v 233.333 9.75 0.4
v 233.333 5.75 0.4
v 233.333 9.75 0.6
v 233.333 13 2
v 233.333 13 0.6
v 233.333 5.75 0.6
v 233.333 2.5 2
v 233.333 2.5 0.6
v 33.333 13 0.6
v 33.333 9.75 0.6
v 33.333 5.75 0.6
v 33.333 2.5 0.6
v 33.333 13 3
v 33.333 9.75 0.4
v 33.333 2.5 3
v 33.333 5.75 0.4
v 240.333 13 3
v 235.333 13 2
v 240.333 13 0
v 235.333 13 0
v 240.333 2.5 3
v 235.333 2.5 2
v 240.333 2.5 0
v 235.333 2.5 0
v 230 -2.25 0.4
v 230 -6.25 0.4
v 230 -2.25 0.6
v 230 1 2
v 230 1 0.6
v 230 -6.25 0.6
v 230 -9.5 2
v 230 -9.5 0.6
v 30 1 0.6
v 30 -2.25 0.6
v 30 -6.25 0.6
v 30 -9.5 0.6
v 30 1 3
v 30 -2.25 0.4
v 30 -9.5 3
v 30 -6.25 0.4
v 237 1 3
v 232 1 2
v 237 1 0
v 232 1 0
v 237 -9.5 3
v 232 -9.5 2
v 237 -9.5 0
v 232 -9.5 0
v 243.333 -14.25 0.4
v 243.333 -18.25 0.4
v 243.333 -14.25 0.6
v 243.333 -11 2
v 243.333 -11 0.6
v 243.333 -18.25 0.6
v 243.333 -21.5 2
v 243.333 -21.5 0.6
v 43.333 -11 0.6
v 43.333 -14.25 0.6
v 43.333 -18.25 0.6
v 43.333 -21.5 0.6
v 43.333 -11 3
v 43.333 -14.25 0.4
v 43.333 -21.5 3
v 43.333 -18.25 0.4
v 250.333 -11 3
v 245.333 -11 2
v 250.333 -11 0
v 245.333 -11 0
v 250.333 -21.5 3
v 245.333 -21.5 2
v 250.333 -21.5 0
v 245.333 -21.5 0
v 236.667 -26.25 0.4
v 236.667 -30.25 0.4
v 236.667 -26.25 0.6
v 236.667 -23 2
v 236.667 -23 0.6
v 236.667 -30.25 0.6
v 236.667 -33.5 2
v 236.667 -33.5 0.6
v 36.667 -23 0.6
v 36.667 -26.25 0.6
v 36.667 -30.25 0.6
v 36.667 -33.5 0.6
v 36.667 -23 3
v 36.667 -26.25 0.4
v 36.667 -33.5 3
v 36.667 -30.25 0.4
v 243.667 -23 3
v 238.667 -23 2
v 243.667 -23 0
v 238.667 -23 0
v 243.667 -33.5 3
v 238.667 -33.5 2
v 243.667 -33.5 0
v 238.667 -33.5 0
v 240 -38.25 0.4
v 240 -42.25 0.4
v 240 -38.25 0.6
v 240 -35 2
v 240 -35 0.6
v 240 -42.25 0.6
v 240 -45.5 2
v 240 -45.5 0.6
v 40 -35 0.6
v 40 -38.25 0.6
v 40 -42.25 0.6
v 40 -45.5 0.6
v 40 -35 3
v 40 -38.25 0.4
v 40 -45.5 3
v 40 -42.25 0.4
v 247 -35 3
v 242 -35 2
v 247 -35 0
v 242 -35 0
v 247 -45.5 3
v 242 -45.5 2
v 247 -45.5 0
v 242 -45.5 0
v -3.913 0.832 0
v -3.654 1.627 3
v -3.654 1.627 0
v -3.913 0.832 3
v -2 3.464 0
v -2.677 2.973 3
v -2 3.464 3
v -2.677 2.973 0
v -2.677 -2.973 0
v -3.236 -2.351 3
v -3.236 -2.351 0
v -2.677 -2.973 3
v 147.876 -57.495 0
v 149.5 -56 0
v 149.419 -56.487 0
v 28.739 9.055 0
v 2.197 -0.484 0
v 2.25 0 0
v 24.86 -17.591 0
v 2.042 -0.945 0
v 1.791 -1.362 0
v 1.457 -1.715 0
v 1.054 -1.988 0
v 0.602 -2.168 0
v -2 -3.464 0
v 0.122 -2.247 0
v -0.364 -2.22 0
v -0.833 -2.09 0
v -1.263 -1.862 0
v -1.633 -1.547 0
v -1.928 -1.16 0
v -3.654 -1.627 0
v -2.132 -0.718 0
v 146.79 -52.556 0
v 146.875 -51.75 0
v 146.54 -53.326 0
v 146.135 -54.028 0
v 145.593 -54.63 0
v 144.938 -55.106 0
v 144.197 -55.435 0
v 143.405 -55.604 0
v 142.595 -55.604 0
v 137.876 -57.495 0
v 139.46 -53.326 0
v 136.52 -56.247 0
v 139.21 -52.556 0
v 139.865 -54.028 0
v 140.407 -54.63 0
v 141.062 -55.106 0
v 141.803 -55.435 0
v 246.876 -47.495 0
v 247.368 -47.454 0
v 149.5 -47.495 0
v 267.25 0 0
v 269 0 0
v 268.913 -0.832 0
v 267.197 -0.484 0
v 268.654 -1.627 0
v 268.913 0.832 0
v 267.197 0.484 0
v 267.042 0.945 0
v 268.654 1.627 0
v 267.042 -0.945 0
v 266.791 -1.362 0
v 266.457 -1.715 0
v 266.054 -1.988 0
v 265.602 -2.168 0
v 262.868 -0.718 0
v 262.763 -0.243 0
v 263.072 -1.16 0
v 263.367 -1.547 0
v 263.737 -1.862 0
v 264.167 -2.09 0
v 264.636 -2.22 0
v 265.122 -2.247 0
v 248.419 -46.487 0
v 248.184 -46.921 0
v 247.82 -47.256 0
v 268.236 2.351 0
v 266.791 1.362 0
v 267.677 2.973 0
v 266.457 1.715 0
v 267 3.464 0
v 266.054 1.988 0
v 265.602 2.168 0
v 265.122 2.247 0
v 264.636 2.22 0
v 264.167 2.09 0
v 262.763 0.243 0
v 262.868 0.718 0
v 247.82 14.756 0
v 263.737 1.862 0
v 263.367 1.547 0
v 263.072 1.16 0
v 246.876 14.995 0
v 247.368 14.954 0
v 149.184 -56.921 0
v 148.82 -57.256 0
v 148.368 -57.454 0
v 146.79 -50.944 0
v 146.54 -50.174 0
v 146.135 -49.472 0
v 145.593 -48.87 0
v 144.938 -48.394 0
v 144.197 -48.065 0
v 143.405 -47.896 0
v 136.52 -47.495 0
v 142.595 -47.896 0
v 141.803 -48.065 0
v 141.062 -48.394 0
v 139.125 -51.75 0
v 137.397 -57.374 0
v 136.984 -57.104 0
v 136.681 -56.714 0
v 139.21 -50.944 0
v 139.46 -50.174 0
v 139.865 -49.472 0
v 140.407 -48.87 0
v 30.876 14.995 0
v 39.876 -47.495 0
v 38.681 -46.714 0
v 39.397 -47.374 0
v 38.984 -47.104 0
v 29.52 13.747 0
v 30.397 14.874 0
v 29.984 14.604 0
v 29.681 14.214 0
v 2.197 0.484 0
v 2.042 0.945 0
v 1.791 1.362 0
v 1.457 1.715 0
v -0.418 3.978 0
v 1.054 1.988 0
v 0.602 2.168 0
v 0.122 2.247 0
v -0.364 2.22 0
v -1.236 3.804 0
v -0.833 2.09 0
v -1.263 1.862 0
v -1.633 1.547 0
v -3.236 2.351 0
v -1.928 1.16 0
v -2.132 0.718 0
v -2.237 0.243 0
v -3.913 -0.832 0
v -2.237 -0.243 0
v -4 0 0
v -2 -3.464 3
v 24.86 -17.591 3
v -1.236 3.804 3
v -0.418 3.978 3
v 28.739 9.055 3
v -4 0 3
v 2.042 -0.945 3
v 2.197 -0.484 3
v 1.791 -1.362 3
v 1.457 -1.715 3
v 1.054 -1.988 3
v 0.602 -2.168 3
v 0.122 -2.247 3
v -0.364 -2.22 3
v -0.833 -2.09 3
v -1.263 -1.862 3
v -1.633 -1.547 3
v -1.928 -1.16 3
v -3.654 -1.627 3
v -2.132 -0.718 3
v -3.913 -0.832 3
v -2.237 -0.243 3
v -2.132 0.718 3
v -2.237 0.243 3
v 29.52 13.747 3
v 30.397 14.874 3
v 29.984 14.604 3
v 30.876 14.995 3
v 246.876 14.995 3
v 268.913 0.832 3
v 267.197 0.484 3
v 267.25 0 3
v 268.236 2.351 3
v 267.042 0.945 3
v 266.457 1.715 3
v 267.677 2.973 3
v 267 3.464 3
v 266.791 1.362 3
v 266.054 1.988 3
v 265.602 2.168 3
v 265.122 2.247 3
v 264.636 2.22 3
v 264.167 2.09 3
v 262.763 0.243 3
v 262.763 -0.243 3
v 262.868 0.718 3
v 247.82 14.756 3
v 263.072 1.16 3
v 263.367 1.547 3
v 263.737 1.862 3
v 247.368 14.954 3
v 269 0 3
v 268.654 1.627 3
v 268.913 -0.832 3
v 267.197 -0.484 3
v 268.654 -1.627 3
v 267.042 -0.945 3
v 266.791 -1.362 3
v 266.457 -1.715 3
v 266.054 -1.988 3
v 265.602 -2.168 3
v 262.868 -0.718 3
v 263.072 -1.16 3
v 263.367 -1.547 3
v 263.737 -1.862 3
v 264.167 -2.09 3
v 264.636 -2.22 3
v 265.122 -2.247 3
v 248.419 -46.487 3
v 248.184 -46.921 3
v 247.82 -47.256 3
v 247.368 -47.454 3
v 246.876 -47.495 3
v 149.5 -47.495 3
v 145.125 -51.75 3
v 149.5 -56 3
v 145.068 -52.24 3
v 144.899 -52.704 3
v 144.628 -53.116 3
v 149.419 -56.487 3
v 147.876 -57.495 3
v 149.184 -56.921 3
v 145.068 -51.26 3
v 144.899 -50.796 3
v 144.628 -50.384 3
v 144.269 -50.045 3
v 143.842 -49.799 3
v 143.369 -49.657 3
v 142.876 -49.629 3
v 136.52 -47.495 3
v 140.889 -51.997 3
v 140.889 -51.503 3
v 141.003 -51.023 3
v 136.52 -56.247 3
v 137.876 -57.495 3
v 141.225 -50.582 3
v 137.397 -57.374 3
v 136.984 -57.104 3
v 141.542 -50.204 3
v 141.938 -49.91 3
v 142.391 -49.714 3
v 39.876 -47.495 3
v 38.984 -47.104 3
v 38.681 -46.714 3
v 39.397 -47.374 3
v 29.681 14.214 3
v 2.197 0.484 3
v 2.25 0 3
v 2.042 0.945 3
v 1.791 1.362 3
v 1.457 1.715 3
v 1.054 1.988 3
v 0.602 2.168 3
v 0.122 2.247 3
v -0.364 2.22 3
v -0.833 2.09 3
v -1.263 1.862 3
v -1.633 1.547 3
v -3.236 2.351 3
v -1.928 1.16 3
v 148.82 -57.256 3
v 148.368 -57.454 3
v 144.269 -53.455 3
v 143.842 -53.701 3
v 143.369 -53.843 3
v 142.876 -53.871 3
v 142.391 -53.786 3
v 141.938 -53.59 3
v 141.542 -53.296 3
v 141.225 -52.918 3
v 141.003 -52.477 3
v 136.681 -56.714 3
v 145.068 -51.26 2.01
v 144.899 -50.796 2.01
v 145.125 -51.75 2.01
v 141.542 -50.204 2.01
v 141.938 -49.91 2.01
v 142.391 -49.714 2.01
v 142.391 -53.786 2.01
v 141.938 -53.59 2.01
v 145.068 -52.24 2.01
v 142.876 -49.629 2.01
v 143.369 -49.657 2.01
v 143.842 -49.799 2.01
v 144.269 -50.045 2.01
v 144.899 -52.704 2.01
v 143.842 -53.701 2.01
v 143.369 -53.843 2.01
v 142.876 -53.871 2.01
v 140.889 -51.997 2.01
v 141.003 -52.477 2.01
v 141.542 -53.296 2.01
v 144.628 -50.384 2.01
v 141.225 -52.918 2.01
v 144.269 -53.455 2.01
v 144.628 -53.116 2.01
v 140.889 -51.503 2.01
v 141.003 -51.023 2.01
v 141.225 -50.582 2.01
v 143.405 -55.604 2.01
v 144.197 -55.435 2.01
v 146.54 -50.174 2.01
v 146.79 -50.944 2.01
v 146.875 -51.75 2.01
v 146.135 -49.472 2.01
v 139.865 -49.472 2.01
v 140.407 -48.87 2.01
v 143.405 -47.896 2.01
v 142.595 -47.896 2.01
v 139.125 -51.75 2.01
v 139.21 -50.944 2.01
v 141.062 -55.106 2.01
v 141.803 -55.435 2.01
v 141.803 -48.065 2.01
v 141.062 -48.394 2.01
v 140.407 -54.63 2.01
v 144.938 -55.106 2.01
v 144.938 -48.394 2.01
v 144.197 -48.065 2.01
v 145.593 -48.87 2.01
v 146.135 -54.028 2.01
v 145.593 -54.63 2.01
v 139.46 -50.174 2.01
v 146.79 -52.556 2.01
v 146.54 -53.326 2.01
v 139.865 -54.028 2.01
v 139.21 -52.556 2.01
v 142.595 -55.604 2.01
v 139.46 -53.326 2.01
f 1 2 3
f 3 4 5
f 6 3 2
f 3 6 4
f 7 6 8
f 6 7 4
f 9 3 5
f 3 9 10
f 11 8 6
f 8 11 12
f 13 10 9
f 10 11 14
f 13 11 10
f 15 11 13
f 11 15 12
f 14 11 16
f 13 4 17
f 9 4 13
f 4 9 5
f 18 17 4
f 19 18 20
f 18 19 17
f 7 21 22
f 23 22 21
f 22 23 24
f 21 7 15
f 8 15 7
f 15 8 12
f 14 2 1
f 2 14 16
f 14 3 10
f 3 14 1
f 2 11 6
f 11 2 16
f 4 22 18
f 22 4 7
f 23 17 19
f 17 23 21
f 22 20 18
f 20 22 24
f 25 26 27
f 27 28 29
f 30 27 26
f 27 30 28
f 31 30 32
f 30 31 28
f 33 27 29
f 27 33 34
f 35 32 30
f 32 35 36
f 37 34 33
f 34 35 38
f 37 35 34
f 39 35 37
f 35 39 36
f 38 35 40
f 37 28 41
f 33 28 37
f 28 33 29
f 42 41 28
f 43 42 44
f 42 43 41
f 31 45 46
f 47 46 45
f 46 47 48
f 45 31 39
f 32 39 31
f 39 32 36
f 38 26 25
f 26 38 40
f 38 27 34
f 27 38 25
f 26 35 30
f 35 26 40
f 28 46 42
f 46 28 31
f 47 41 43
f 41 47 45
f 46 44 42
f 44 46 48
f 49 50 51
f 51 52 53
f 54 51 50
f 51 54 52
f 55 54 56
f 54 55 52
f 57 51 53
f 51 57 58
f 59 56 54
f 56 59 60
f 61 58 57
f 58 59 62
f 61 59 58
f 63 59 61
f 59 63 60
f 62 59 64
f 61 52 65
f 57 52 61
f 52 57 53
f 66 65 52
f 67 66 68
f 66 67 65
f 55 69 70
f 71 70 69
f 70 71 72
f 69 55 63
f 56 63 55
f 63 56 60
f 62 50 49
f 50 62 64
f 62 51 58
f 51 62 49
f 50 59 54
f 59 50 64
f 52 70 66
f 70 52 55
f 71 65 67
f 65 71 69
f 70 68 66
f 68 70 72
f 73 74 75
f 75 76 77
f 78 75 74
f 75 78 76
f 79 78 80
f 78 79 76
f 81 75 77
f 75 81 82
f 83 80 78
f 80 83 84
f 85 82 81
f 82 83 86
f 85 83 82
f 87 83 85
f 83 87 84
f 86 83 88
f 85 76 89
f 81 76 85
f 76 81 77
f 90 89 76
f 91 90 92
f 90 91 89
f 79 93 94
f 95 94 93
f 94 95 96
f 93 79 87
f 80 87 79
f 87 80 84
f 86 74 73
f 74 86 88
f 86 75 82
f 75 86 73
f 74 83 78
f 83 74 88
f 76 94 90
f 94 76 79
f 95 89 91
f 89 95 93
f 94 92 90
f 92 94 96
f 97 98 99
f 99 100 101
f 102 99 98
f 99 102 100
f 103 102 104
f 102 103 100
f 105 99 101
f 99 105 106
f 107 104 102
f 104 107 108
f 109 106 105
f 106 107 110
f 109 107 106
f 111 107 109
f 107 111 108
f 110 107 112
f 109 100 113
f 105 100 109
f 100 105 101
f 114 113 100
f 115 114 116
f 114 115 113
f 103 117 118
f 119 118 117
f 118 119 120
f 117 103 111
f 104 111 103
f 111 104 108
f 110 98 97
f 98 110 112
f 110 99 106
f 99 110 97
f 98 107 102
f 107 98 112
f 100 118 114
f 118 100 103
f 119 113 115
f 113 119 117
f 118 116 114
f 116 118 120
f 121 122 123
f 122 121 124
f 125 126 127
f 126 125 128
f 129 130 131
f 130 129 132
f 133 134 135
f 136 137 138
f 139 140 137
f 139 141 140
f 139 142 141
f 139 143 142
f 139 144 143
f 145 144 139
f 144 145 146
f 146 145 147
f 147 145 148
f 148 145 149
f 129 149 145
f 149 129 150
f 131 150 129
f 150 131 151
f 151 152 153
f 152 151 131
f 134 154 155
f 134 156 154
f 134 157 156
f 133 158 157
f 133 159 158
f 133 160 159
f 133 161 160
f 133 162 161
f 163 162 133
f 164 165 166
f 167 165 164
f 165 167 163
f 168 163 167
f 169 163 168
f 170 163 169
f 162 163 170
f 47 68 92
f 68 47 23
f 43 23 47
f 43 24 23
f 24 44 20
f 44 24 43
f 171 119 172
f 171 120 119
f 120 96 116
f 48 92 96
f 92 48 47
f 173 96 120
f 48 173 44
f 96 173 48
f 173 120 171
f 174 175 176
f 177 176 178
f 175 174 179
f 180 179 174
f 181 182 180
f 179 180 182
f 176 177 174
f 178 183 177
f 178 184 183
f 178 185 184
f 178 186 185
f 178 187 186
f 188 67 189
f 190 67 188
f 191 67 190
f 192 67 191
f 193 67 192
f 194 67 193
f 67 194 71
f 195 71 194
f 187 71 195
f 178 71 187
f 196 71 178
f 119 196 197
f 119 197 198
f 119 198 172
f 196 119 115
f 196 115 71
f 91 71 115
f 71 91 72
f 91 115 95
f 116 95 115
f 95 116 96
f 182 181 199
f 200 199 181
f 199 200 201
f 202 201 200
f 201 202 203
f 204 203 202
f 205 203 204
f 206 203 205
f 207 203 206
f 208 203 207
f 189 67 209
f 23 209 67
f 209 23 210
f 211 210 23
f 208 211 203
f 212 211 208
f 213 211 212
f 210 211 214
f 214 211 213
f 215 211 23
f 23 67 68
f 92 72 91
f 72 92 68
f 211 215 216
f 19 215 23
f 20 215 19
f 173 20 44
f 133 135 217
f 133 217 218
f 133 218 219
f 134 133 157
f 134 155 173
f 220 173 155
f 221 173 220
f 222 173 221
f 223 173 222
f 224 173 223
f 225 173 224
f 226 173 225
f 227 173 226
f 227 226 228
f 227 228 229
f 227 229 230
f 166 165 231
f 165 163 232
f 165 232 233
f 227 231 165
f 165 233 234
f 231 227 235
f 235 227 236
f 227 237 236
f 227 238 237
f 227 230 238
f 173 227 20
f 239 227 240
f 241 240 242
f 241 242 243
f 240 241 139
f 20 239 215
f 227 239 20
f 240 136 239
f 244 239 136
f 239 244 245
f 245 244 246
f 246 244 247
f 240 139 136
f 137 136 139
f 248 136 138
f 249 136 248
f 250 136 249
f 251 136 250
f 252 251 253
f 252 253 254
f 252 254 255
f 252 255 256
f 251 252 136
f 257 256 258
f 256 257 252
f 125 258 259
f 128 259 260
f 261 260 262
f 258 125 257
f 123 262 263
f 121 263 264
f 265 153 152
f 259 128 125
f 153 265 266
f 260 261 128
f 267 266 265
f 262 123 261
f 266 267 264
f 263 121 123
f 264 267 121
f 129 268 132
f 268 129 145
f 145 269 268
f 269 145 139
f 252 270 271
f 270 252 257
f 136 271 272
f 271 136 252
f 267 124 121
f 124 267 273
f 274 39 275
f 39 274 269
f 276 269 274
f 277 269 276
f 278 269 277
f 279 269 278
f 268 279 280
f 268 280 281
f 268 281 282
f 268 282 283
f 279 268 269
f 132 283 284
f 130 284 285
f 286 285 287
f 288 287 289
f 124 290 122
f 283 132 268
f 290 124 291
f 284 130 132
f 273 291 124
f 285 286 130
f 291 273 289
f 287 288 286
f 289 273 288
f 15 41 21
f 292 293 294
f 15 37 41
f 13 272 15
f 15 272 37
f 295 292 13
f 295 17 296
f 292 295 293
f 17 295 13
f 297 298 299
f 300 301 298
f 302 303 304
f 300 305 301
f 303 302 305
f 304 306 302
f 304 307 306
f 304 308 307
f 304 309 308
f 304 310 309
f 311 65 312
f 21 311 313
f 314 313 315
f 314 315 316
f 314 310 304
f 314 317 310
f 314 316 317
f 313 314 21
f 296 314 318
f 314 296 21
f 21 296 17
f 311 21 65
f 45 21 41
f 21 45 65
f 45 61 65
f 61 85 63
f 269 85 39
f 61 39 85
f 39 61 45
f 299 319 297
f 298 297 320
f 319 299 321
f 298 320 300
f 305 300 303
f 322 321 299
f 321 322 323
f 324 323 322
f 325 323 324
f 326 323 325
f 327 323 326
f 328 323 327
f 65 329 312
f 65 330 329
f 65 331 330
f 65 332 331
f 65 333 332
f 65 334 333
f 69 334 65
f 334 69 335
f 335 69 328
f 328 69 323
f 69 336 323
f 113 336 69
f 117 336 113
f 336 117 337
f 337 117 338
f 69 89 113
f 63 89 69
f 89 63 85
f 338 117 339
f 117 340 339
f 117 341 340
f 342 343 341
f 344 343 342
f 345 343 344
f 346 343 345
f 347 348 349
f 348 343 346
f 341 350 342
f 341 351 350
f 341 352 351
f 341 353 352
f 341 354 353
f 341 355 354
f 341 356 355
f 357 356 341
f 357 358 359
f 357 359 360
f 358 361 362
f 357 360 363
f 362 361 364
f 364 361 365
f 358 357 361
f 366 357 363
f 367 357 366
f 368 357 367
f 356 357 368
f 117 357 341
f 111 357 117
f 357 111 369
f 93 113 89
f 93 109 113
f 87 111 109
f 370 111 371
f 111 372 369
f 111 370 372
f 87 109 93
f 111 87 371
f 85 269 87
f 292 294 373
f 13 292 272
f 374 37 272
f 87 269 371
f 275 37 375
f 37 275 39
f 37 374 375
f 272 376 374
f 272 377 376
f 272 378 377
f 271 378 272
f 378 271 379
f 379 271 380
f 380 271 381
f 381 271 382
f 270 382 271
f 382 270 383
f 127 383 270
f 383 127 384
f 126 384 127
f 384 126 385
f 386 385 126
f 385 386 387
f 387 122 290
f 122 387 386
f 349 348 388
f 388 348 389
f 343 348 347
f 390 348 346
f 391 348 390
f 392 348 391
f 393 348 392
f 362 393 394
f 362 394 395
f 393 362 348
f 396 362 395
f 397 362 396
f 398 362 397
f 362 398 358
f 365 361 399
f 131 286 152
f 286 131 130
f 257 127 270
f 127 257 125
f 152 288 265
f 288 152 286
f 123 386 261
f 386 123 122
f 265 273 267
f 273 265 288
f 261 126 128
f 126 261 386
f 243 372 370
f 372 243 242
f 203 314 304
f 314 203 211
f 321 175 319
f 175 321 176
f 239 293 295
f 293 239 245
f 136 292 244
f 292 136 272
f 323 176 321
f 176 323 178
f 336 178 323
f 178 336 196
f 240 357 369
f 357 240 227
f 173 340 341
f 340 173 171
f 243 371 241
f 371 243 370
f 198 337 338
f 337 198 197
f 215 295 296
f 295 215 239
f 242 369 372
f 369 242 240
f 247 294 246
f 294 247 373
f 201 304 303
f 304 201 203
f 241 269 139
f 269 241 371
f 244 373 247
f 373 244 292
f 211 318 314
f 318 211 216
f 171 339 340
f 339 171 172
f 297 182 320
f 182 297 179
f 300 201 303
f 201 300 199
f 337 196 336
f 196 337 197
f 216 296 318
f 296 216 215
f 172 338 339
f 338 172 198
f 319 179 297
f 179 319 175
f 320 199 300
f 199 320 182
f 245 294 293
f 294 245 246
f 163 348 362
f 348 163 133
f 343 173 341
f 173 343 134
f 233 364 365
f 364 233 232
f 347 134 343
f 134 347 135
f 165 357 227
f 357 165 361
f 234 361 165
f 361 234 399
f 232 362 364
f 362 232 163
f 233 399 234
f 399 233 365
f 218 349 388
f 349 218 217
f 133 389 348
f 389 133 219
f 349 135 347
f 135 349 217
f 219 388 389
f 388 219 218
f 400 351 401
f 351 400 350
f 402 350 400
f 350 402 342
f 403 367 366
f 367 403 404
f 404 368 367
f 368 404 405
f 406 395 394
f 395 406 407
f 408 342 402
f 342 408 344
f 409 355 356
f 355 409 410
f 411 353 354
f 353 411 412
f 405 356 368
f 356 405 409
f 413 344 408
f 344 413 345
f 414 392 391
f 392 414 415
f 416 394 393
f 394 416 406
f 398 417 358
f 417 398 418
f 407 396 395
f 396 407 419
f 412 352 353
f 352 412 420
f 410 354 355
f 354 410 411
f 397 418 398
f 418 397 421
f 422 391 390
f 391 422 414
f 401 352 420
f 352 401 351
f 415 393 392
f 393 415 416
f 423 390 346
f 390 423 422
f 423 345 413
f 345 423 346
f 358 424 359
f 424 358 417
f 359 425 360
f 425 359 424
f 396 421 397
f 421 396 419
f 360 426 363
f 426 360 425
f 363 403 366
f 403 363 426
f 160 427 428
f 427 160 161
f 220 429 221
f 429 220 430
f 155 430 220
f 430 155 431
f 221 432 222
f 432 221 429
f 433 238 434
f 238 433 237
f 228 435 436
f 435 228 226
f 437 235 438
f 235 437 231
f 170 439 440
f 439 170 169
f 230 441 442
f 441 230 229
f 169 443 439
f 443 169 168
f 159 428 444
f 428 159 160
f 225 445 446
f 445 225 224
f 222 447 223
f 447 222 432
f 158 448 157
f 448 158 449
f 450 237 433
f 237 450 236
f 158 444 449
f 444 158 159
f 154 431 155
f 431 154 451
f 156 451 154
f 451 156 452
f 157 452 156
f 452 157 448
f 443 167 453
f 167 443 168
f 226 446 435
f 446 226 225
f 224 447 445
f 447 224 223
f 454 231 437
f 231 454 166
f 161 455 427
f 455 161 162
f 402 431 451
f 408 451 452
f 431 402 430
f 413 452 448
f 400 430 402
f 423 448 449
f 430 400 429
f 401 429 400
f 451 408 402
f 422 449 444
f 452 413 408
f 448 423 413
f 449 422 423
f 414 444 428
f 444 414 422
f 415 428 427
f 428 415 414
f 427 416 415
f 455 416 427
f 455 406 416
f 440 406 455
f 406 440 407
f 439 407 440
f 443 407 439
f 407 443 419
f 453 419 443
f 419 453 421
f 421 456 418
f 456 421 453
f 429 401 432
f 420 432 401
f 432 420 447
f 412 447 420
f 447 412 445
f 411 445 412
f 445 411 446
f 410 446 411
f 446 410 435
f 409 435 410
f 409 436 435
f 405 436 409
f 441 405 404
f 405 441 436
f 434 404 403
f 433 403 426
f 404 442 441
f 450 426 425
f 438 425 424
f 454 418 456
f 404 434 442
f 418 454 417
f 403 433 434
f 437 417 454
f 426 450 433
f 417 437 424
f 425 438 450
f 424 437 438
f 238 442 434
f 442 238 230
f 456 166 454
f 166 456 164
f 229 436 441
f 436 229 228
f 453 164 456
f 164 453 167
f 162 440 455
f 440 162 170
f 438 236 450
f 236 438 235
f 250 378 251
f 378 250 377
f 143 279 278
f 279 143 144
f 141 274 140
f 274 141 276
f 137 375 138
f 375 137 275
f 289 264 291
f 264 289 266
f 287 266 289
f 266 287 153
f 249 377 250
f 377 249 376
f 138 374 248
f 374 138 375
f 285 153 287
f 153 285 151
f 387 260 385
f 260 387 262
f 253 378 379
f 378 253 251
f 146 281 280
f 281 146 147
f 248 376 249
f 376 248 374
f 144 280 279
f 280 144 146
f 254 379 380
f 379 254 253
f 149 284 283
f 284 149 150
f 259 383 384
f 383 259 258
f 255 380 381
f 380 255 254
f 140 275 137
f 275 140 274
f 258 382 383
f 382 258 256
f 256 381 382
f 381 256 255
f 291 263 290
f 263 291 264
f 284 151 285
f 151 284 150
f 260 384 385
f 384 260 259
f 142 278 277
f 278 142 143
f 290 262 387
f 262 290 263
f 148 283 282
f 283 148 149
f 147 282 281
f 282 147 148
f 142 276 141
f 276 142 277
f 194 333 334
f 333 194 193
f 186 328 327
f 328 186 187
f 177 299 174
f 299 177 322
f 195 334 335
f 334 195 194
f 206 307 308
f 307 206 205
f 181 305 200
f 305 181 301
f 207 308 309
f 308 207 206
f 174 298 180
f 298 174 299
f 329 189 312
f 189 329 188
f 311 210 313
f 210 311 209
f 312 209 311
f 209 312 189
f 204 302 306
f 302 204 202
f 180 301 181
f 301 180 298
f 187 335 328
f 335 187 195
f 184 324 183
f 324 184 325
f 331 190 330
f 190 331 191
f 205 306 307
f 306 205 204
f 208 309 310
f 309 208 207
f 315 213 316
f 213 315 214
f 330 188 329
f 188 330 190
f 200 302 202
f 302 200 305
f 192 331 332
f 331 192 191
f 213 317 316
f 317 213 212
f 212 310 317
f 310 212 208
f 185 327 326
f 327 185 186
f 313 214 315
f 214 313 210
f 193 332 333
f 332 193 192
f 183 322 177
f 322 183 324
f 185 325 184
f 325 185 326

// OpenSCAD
// LED strip holder for M2
//
// Copyright (C) 2020  Kevin O'Connor <kevin@koconnor.net>
//
// This file may be distributed under the terms of the GNU GPLv3 license.

// Room at top for 2.5 inches width == 63.5mm
// Top frame screws measure 10 7/16 inches apart == 265mm
//  (10 11/16 - 4/16 == 10 7/16)

// Right Screw is ~9mm from steel frame; bed is ~19mm from steel frame.
// Screw ~9.5mm from edge.

// LED strip is 10mm wide by 1mm high.  Each section is 100mm long.

// Longest diagonal print on M2 is 320mm (sqrt(200**2 + 250**2))

plate_height = 3;
outside_wall = 2;
screw_holder = 8;
screw_dia = 4.5;
m2_rscrew_x = 265;
x_idler_offset_x = 26;
x_idler_offset_y1 = 30;
x_idler_offset_y2 = 4;
led_frame_x = 40;
led_frame_y = 15;
led_frame_length = 200;
led_frame_height = .6;
led_width = 10 + .5;
light_width = 4;
light_height = 0.4;
led_tracks = 5;
spacing = 100 / 6;
track_offsets = [2*spacing/5, 3*spacing/5, -spacing/5, spacing/5, 0];
led_bump_length = 2;
led_bump_height = 1;
led_wire_length = 5;
led_wall = 1.5;
slack = 1;
CUT = 0.01;
$fs = .5;

linear_rail_screw_spacing = 25;
linear_rail_margin = 19;
linear_rail_buffer = 5;
linear_rail_screw_x = 100;
linear_rail_screw_dia = 4.25;
linear_rail_num_screws = 1;
linear_rail_washer_clearance = 7.75;

support_start = led_frame_x + 3;

module led_plate() {
    module cyl(d, x, y, h=plate_height) {
        translate([x, y])
            cylinder(d=d, h);
    }
    led_frame_width = (led_width + led_wall) * led_tracks;
    frame_width = led_frame_width - led_wall + 2 * outside_wall;

    //echo(frame_width);
    hull_dia = 3;
    hull_left = led_frame_x;
    hull_right = led_frame_x + led_frame_length + led_bump_length + led_wire_length;
    hull_y1 = led_frame_y - hull_dia/2;
    hull_y2 = led_frame_y - frame_width + hull_dia/2;

    module plate() {
        hull() {
            cyl(screw_holder, 0, 0);
            cyl(hull_dia, x_idler_offset_x, hull_y1 - x_idler_offset_y1);
            cyl(hull_dia, hull_left, hull_y1 - x_idler_offset_y2);
        }
        hull() {
            cyl(hull_dia, x_idler_offset_x, hull_y1 - x_idler_offset_y1);
            cyl(hull_dia, x_idler_offset_x, hull_y1 - x_idler_offset_y1);
            cyl(hull_dia, x_idler_offset_x + 5, hull_y1);
            cyl(hull_dia, hull_left, hull_y1);
            cyl(hull_dia, hull_left, hull_y2);
            cyl(hull_dia, hull_right, hull_y1);
            cyl(hull_dia, hull_right, hull_y2);
            cyl(screw_holder, m2_rscrew_x, 0);
        }

        // Linear rail support bump out
        hull() {
            cyl(hull_dia, support_start + linear_rail_screw_x - linear_rail_buffer, hull_y2 + -10);
            cyl(hull_dia, support_start + linear_rail_screw_x - linear_rail_buffer, hull_y2 + -1);
            cyl(hull_dia, support_start + (linear_rail_screw_x + (linear_rail_screw_spacing * (linear_rail_num_screws-1))) + linear_rail_buffer, hull_y2 + -10);
            cyl(hull_dia, support_start + (linear_rail_screw_x + (linear_rail_screw_spacing * (linear_rail_num_screws-1))) + linear_rail_buffer, hull_y2 + -1);
        }
    }
    module led_track() {
        // Main channel to hold leds
        cube([led_frame_length, led_width, plate_height]);
        // Open space for light
        light_z = light_height-led_frame_height;
        translate([0, (led_width - light_width)/2, light_z])
            cube([led_frame_length, light_width, plate_height+99+CUT]);
        // Space for led wires
        bump_z = plate_height - (led_frame_height+led_bump_height);
        translate([led_frame_length - CUT, 0, bump_z])
            cube([led_bump_length+2*CUT, led_width, plate_height]);
        translate([led_frame_length + led_bump_length, 0, -99])
            cube([led_wire_length, led_width, 99 + plate_height + 2*CUT]);
    }

    track_y = led_frame_y - outside_wall - led_width;
    difference() {
        plate();
        translate([0, 0, -CUT])
            cylinder(d=screw_dia, h=plate_height + 2*CUT);
        translate([m2_rscrew_x, 0, -CUT])
            cylinder(d=screw_dia, h=plate_height + 2*CUT);
        for (i=[0:led_tracks-1]) {
            y = track_y - i * (led_width + led_wall);
            translate([led_frame_x - track_offsets[i], y, led_frame_height])
                led_track();
        }

        // Linear rail support to prevent sagging
        translate([support_start, hull_y2]) {
            // Screw hole
            for (i=[0:linear_rail_num_screws-1]) {
                translate([linear_rail_screw_x + (linear_rail_screw_spacing * i), -4.5-(2.5/2), -CUT]) {
                    cylinder(d=linear_rail_screw_dia, h=plate_height  + 2*CUT);
                }
            }

            // Spacing for nut + washer on the linear rail support
            for (i=[0:linear_rail_num_screws-1]) {
                translate([linear_rail_screw_x + (linear_rail_screw_spacing * i), -4.5-(2.5/2), -CUT]) {
                    cylinder(d=linear_rail_washer_clearance, h=2  + 2*CUT);
                }
            }
        }
    }
}

led_plate();
